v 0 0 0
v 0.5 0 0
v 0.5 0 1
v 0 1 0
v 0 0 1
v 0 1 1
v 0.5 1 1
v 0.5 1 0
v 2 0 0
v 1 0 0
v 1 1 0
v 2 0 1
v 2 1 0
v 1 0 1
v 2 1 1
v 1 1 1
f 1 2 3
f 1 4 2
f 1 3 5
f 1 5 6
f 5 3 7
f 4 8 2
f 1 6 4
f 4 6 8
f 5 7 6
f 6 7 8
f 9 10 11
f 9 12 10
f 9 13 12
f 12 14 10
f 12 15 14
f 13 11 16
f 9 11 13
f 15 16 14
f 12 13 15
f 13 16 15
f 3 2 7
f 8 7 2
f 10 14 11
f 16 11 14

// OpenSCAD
difference(){cube([2,1,1]);translate([0.5,0,0])cube([0.5,1,1]);}
